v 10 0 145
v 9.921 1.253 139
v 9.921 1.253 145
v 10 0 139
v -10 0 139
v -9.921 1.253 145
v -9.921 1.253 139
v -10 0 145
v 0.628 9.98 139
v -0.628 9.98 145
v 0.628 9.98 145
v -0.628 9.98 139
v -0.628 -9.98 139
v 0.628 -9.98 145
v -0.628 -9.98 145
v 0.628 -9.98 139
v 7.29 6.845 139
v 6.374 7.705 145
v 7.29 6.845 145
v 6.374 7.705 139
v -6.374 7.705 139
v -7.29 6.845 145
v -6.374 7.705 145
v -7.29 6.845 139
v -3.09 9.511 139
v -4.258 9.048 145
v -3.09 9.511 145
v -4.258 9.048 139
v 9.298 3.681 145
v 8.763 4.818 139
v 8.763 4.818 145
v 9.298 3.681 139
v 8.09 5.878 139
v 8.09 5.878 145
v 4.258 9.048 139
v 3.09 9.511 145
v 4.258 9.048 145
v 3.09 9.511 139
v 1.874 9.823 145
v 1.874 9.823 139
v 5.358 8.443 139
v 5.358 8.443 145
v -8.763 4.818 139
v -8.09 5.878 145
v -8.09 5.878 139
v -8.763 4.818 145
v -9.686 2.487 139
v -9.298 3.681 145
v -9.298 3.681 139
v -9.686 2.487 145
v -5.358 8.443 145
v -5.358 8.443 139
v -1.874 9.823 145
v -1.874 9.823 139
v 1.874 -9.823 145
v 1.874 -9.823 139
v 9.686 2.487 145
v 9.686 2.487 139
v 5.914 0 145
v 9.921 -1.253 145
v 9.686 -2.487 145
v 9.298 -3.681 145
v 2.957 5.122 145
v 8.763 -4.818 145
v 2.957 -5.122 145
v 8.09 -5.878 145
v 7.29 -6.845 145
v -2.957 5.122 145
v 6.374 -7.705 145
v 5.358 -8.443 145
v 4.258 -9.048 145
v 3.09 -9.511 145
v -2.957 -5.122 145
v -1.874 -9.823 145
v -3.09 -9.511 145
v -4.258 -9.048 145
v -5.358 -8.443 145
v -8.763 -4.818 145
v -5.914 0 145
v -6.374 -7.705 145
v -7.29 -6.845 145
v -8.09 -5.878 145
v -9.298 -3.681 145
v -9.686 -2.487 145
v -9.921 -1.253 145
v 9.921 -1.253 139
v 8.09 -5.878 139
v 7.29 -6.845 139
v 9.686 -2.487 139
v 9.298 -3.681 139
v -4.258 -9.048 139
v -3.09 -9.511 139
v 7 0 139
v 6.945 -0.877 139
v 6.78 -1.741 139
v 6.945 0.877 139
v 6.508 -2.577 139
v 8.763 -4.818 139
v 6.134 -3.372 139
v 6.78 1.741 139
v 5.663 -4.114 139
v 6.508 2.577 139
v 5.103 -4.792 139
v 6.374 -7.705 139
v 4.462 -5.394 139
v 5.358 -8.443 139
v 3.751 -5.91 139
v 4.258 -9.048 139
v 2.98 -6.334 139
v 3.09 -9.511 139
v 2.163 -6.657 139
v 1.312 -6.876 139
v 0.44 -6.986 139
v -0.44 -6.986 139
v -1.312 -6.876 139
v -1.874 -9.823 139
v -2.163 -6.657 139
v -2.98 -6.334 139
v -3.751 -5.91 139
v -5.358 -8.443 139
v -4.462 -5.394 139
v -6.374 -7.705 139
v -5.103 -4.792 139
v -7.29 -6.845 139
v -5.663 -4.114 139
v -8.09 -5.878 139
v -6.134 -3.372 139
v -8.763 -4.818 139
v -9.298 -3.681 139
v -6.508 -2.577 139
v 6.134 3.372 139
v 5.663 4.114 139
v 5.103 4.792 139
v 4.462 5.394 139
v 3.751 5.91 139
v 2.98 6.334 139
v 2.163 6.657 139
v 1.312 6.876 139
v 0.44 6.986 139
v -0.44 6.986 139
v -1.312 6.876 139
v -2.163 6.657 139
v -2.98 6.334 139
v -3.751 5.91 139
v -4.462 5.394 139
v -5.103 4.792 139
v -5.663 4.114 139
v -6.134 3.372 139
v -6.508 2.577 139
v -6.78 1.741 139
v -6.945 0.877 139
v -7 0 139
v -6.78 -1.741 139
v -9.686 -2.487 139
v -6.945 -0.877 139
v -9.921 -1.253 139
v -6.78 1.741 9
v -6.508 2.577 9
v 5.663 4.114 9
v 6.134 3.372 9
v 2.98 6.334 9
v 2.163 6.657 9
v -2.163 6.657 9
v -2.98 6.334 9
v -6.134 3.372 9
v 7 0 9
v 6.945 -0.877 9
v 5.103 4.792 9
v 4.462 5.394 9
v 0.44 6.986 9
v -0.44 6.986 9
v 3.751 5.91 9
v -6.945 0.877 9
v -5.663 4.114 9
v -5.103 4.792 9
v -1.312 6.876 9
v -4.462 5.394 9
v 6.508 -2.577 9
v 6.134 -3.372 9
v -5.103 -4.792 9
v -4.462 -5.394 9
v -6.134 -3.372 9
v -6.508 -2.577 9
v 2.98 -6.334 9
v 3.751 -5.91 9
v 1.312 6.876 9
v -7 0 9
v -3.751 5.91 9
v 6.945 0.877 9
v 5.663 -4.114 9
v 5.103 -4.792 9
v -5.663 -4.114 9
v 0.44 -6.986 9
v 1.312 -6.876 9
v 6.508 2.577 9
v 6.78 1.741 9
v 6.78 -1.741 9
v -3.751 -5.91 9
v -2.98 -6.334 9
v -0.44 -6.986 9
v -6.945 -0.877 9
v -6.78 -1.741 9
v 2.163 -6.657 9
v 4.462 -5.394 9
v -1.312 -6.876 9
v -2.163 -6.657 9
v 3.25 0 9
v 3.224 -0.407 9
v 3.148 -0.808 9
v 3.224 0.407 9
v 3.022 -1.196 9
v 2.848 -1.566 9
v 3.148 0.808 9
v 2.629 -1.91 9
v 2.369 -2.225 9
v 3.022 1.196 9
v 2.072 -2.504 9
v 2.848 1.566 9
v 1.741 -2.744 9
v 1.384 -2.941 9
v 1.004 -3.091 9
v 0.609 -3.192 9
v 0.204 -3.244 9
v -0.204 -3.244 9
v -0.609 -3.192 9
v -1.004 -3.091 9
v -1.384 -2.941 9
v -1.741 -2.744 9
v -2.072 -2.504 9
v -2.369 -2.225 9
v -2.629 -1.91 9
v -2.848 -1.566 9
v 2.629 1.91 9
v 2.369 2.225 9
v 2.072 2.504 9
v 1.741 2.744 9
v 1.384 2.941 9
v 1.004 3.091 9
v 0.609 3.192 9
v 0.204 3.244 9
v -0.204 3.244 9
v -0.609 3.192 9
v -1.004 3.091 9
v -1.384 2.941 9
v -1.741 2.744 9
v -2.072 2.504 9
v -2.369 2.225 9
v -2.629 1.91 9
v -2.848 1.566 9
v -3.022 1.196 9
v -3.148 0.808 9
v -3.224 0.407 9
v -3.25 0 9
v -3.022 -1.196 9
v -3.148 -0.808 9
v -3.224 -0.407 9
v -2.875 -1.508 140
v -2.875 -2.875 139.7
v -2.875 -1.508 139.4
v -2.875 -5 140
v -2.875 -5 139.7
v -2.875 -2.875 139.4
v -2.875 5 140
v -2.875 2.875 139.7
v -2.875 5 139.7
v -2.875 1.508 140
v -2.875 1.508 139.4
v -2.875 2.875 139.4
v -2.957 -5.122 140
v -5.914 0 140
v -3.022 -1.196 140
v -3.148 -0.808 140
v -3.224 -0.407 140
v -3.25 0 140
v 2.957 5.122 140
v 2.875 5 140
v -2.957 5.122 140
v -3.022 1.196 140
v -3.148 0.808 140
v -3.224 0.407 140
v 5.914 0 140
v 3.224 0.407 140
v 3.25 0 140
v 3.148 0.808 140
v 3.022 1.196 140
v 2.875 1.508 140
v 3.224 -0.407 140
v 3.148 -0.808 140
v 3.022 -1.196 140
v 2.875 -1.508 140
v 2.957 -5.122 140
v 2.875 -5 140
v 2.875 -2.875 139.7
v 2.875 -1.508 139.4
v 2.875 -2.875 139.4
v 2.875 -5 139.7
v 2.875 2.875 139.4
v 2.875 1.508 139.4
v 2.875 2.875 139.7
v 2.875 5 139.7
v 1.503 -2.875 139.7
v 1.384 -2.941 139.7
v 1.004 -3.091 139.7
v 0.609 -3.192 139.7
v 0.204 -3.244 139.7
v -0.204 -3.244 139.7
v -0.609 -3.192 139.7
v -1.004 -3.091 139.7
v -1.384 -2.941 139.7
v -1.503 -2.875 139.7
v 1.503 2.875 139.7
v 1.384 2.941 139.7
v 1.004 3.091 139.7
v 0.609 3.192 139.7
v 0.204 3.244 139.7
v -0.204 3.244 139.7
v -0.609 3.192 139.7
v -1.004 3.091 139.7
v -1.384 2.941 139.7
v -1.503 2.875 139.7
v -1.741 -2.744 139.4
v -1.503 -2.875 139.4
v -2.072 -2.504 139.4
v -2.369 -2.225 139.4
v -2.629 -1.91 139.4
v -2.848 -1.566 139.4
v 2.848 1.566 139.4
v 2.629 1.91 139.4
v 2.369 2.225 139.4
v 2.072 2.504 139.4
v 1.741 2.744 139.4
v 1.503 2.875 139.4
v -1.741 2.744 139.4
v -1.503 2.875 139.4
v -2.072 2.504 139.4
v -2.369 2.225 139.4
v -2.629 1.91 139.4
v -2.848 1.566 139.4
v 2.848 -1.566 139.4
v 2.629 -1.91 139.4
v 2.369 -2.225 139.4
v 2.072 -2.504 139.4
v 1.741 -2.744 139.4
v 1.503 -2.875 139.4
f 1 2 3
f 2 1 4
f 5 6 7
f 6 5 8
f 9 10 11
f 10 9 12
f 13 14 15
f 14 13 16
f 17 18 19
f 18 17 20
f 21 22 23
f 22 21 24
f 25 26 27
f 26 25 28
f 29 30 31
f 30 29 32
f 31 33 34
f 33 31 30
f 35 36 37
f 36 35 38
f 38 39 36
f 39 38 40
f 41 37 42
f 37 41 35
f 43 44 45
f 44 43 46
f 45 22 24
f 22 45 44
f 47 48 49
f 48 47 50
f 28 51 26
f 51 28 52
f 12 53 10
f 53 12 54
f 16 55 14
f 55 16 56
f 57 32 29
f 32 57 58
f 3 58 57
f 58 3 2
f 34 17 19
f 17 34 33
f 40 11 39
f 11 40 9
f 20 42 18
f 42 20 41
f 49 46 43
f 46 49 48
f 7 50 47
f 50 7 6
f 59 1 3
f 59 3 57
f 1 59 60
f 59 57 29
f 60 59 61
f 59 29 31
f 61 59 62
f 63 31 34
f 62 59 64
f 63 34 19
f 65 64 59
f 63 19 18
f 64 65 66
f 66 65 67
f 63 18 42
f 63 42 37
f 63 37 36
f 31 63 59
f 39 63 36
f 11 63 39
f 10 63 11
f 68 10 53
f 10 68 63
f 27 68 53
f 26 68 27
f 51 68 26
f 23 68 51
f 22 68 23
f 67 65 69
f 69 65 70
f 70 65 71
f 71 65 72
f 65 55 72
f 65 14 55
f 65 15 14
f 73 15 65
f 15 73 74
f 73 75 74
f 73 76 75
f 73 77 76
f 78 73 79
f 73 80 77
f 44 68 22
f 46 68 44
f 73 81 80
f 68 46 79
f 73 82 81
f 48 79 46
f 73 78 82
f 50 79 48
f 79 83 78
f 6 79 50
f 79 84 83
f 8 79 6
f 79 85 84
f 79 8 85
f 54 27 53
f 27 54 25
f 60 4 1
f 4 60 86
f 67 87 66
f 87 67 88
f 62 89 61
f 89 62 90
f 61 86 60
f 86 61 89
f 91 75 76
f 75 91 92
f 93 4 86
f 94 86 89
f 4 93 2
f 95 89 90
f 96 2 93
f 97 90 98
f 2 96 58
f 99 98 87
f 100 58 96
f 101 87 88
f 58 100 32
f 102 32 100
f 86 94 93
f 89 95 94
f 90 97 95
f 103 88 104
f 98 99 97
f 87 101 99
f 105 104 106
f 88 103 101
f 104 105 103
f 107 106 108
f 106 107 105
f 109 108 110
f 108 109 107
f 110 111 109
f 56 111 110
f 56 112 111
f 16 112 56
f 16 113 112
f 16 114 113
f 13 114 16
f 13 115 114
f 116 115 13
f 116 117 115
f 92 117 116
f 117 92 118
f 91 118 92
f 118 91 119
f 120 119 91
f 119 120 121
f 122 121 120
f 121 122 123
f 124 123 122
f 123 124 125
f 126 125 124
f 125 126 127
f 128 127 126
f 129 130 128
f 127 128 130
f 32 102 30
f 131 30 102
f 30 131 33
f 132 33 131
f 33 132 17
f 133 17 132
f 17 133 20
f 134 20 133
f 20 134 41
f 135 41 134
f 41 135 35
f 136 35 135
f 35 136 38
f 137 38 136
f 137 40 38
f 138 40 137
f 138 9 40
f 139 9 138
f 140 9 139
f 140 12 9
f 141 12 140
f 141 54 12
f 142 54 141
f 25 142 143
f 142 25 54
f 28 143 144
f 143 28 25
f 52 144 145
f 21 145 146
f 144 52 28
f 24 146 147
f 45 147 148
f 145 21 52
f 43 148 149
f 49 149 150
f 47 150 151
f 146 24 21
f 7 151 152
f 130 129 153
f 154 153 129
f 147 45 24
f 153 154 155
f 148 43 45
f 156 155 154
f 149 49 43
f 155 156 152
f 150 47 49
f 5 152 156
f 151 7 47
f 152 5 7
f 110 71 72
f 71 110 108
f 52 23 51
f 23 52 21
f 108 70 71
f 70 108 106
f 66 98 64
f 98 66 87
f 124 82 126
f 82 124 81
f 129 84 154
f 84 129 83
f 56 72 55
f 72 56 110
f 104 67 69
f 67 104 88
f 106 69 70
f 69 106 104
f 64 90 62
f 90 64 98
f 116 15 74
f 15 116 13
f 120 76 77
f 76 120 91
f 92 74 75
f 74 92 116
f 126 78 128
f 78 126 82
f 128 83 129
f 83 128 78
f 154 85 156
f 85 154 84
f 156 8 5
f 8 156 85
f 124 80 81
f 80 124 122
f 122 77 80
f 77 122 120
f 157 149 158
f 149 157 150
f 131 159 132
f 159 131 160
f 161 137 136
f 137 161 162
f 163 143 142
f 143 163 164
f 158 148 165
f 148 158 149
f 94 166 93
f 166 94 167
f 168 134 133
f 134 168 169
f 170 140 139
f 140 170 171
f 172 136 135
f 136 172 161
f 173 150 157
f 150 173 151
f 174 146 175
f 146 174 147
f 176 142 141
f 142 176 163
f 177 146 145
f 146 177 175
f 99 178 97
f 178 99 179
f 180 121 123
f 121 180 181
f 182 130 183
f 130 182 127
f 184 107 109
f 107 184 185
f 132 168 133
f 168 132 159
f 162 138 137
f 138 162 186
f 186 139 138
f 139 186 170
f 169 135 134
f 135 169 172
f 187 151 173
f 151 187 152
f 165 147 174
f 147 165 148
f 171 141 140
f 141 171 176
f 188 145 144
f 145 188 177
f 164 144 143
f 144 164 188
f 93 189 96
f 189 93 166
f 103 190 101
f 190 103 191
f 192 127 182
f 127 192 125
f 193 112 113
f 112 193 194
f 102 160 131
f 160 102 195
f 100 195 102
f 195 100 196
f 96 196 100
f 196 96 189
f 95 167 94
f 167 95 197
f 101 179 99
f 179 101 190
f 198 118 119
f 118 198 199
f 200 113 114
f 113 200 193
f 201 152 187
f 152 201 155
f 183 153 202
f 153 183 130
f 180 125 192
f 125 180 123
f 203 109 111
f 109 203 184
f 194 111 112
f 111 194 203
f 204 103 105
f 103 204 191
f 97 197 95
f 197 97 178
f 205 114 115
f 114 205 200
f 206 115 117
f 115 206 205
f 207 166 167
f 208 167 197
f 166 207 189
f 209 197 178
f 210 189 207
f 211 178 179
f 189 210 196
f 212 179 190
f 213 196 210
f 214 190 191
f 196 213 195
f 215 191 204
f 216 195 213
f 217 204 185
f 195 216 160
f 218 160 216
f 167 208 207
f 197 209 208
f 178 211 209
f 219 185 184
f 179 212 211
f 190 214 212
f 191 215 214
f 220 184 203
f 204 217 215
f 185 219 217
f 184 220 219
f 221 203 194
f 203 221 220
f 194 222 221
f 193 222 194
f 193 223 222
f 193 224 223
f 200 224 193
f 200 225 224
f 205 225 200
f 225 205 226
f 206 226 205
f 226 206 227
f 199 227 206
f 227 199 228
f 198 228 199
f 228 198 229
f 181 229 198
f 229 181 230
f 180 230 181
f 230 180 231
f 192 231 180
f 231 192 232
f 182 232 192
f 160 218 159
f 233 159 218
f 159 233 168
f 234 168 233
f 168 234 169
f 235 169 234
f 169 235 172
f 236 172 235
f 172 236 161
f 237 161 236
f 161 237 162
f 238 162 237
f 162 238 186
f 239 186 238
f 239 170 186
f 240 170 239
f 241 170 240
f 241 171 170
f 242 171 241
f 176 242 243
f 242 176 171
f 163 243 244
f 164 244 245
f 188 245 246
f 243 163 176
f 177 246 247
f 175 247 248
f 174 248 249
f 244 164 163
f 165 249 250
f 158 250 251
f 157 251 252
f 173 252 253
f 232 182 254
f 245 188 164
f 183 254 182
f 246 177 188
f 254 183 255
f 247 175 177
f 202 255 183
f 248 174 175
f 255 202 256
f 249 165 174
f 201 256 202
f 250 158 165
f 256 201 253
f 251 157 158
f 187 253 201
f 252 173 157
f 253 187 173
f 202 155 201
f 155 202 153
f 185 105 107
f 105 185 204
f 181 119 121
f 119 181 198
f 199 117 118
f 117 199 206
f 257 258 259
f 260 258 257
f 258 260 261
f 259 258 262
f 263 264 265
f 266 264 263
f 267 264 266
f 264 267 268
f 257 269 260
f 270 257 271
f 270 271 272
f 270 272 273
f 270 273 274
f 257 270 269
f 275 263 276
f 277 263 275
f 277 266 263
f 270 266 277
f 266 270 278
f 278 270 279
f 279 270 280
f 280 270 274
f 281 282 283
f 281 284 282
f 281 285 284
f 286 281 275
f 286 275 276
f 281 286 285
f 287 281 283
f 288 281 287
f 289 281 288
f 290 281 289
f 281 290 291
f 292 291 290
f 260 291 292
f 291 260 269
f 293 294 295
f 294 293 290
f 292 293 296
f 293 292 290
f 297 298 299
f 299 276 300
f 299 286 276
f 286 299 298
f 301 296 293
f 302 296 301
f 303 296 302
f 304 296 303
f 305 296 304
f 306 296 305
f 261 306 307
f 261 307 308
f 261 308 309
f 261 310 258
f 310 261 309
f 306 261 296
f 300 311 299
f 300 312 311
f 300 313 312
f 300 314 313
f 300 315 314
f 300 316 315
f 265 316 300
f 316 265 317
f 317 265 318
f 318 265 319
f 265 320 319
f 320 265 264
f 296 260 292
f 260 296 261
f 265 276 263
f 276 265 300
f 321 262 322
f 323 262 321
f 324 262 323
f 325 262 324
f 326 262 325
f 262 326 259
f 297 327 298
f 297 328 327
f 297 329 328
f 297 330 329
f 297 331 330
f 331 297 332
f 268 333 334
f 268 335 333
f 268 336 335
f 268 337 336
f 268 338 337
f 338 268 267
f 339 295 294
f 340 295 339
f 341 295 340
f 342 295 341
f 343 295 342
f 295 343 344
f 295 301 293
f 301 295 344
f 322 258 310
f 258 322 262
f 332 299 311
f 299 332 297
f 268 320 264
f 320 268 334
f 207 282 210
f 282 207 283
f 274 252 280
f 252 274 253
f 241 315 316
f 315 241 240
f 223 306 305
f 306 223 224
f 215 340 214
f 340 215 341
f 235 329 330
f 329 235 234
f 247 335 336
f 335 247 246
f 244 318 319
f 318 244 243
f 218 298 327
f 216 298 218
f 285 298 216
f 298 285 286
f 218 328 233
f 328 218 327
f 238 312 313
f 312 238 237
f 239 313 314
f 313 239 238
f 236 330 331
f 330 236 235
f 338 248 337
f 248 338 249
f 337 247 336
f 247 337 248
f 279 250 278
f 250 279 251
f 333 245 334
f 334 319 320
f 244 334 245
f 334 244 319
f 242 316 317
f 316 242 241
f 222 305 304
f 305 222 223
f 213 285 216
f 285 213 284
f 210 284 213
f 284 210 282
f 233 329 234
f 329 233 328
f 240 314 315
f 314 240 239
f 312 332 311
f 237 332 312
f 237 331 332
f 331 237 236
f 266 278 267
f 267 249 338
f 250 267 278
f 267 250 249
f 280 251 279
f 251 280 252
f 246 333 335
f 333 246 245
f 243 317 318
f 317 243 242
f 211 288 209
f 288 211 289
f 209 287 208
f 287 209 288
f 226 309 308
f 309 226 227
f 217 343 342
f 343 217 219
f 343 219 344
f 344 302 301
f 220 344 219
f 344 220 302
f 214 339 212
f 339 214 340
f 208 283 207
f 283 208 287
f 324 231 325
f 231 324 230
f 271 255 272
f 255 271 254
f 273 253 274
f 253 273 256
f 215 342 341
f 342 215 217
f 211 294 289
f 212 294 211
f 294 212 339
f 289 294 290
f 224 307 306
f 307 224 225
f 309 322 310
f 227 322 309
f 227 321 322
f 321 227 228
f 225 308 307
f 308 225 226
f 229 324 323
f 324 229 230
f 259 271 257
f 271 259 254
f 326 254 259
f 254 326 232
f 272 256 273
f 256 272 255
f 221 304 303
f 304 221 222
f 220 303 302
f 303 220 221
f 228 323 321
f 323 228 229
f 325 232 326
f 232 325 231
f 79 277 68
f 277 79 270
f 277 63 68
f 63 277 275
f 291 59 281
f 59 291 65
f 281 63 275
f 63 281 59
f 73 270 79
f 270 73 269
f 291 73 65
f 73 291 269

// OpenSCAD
$fn = 50;


difference() {
	union() {
		translate(v = [0, 0, 139.0000000000]) {
			cylinder(h = 6, r = 10.0000000000);
		}
		translate(v = [0, 0, 9.0000000000]) {
			cylinder(h = 136, r = 7.0000000000);
		}
	}
	union() {
		translate(v = [0, 0, 145]) {
			rotate(a = [0, 0, 0]) {
				difference() {
					union() {
						#translate(v = [-2.8750000000, -5.0000000000, -5.3000000000]) {
							cube(size = [5.7500000000, 10, 0.3000000000]);
						}
						#translate(v = [-2.8750000000, -2.8750000000, -5.6000000000]) {
							cube(size = [5.7500000000, 5.7500000000, 0.3000000000]);
						}
						#translate(v = [-2.8750000000, -5.0000000000, 0]) {
							cube(size = [5.7500000000, 10, 0.3000000000]);
						}
						#translate(v = [-2.8750000000, -2.8750000000, 0.3000000000]) {
							cube(size = [5.7500000000, 5.7500000000, 0.3000000000]);
						}
						#translate(v = [0, 0, -100.0000000000]) {
							cylinder(h = 200, r = 3.2500000000);
						}
						translate(v = [0, 0, -5]) {
							#linear_extrude(height = 5) {
								polygon(points = [[5.9142500000, 0.0000000000], [2.9571250000, 5.1218907443], [-2.9571250000, 5.1218907443], [-5.9142500000, 0.0000000000], [-2.9571250000, -5.1218907443], [2.9571250000, -5.1218907443]]);
							}
						}
						#translate(v = [-2.8750000000, -5.0000000000, -5.3000000000]) {
							cube(size = [5.7500000000, 10, 0.3000000000]);
						}
						#translate(v = [-2.8750000000, -2.8750000000, -5.6000000000]) {
							cube(size = [5.7500000000, 5.7500000000, 0.3000000000]);
						}
						#translate(v = [-2.8750000000, -5.0000000000, 0]) {
							cube(size = [5.7500000000, 10, 0.3000000000]);
						}
						#translate(v = [-2.8750000000, -2.8750000000, 0.3000000000]) {
							cube(size = [5.7500000000, 5.7500000000, 0.3000000000]);
						}
						#translate(v = [0, 0, -100.0000000000]) {
							cylinder(h = 200, r = 3.2500000000);
						}
						#translate(v = [-2.8750000000, -5.0000000000, -5.3000000000]) {
							cube(size = [5.7500000000, 10, 0.3000000000]);
						}
						#translate(v = [-2.8750000000, -2.8750000000, -5.6000000000]) {
							cube(size = [5.7500000000, 5.7500000000, 0.3000000000]);
						}
						#translate(v = [-2.8750000000, -5.0000000000, 0]) {
							cube(size = [5.7500000000, 10, 0.3000000000]);
						}
						#translate(v = [-2.8750000000, -2.8750000000, 0.3000000000]) {
							cube(size = [5.7500000000, 5.7500000000, 0.3000000000]);
						}
						#translate(v = [0, 0, -100.0000000000]) {
							cylinder(h = 200, r = 3.2500000000);
						}
					}
					union();
				}
			}
		}
		#translate(v = [0, 0, -100.0000000000]) {
			cylinder(h = 200, r = 3.2500000000);
		}
	}
}
